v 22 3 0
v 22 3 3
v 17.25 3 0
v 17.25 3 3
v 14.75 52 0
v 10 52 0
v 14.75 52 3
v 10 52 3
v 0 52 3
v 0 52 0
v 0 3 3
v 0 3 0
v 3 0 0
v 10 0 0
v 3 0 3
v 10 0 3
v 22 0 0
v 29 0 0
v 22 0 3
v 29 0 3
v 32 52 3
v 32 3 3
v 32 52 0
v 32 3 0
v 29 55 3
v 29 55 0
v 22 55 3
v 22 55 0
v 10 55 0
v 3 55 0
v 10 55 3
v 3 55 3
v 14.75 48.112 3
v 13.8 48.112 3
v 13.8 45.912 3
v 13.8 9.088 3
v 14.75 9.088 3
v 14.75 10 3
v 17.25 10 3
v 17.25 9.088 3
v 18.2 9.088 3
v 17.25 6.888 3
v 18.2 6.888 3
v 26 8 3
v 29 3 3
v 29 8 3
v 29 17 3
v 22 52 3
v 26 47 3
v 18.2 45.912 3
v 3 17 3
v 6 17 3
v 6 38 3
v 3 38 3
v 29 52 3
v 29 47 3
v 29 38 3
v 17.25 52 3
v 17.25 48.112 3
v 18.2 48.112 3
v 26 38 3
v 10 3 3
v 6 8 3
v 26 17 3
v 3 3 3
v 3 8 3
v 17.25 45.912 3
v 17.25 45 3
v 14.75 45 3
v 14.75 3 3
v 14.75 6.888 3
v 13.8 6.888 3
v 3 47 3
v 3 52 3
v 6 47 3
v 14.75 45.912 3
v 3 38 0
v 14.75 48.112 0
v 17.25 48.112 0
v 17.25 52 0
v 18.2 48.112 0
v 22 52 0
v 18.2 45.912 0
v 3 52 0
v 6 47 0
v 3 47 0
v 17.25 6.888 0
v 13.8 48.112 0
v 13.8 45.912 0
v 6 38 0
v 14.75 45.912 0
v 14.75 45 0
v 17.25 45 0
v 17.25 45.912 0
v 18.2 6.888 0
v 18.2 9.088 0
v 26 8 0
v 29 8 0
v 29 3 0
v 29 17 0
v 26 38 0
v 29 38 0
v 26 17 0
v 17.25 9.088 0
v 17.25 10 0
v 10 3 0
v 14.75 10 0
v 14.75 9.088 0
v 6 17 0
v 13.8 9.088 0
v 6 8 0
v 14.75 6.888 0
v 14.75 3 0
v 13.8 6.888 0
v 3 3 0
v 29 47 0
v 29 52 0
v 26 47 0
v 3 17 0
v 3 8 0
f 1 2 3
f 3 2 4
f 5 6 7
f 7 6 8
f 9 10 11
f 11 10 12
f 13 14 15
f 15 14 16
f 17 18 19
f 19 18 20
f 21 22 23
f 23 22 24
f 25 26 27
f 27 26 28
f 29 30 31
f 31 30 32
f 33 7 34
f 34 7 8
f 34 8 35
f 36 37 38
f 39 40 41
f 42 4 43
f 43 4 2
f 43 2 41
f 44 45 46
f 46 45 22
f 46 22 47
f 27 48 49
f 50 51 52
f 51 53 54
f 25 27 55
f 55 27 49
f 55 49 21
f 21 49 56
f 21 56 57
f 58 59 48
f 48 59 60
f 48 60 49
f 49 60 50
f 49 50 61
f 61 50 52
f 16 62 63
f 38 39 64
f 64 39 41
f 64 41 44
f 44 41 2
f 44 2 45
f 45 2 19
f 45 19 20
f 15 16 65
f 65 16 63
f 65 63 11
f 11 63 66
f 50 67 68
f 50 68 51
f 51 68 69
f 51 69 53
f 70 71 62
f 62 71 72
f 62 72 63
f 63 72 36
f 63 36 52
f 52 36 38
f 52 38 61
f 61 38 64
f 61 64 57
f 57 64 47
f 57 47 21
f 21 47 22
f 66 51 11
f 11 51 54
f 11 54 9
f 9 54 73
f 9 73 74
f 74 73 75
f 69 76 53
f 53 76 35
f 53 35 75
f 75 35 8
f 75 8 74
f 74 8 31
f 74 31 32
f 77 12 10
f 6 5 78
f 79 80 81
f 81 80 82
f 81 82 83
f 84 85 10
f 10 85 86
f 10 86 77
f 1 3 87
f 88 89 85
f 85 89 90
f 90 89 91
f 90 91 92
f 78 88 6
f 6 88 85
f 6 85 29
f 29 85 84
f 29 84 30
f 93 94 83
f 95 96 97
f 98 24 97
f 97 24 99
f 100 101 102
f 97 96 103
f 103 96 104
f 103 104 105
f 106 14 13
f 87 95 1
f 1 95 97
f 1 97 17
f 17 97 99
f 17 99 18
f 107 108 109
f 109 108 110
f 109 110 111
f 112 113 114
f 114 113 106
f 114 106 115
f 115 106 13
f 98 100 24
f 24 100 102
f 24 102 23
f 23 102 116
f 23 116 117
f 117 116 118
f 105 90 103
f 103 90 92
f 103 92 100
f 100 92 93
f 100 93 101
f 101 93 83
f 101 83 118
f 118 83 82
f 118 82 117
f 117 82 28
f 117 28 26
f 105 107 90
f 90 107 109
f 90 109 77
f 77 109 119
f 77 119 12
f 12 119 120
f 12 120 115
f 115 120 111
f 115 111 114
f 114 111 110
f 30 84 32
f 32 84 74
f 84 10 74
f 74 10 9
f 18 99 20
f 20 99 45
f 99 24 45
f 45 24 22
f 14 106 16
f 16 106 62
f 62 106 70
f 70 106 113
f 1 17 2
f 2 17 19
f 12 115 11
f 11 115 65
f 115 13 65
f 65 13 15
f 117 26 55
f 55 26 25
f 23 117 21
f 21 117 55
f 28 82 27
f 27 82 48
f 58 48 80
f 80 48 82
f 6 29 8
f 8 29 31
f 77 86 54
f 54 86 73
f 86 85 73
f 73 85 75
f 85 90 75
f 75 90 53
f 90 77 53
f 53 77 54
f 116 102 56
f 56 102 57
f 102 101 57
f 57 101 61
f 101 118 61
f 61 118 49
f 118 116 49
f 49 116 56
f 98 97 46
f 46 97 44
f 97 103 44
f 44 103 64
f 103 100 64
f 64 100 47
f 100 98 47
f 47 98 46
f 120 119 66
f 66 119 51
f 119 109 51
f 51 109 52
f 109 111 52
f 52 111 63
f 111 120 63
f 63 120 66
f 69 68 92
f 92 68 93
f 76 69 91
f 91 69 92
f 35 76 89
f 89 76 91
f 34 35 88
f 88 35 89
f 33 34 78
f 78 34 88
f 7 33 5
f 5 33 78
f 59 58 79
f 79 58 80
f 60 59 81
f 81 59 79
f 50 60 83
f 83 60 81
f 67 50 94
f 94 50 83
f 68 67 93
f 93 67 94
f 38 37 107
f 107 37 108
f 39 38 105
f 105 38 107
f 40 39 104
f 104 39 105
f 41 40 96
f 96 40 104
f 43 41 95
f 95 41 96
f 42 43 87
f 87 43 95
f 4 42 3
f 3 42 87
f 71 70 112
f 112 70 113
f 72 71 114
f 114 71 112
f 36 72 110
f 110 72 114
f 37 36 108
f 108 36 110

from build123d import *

# Parameters (mm, degrees)
SKETCH_1_W          = 32
SKETCH_1_H          = 55
EXTRUDE_1_DEPTH     = 3
SKETCH_2_W          = 3
SKETCH_2_H          = 3
SKETCH_2_W_2        = 12
CUT_EXTRUDE_1_DEPTH = 4
SKETCH_3_W          = 3
SKETCH_3_H          = 9
CUT_EXTRUDE_2_DEPTH = 4
CUT_EXTRUDE_3_DEPTH = 10


with BuildPart() as part:
    # 스케치1 → 보스-돌출1 (new body)
    with BuildSketch(Plane.XY):
        with Locations((16, 27.5)):
            Rectangle(SKETCH_1_W, SKETCH_1_H)
    extrude(amount=EXTRUDE_1_DEPTH)

    # 스케치2 → 컷-돌출1 (cut, through all)
    with BuildSketch(Plane.XY.offset(3)):
        with Locations((1.5, 53.5)):
            Rectangle(SKETCH_2_W, SKETCH_2_H)
        with Locations((16, 53.5)):
            Rectangle(SKETCH_2_W_2, SKETCH_2_H)
        with Locations((30.5, 53.5)):
            Rectangle(SKETCH_2_W, SKETCH_2_H)
        with Locations((1.5, 1.5)):
            Rectangle(SKETCH_2_W, SKETCH_2_H)
        with Locations((16, 1.5)):
            Rectangle(SKETCH_2_W_2, SKETCH_2_H)
        with Locations((30.5, 1.5)):
            Rectangle(SKETCH_2_W, SKETCH_2_H)
    extrude(amount=-CUT_EXTRUDE_1_DEPTH, mode=Mode.SUBTRACT)

    # 스케치3 → 컷-돌출2 (cut, through all)
    with BuildSketch(Plane.XY.offset(3)):
        with Locations((4.5, 42.5)):
            Rectangle(SKETCH_3_W, SKETCH_3_H)
        with Locations((27.5, 42.5)):
            Rectangle(SKETCH_3_W, SKETCH_3_H)
        with Locations((27.5, 12.5)):
            Rectangle(SKETCH_3_W, SKETCH_3_H)
        with Locations((4.5, 12.5)):
            Rectangle(SKETCH_3_W, SKETCH_3_H)
    extrude(amount=-CUT_EXTRUDE_2_DEPTH, mode=Mode.SUBTRACT)

    # 스케치5 → 컷-돌출3 (cut)
    with BuildSketch(Plane.XY.offset(3)):
        Polygon((14.75, 10), (17.25, 10), (17.25, 9.08840284), (18.2, 9.08840284), (18.2, 6.88840284), (17.25, 6.88840284), (17.25, 3), (14.75, 3), (14.75, 6.88840284), (13.8, 6.88840284), (13.8, 9.08840284), (14.75, 9.08840284), align=None)
        Polygon((14.75, 45), (14.75, 45.91159716), (13.8, 45.91159716), (13.8, 48.11159716), (14.75, 48.11159716), (14.75, 52), (17.25, 52), (17.25, 48.11159716), (18.2, 48.11159716), (18.2, 45.91159716), (17.25, 45.91159716), (17.25, 45), align=None)
    extrude(amount=-CUT_EXTRUDE_3_DEPTH, mode=Mode.SUBTRACT)


solid = part.part
